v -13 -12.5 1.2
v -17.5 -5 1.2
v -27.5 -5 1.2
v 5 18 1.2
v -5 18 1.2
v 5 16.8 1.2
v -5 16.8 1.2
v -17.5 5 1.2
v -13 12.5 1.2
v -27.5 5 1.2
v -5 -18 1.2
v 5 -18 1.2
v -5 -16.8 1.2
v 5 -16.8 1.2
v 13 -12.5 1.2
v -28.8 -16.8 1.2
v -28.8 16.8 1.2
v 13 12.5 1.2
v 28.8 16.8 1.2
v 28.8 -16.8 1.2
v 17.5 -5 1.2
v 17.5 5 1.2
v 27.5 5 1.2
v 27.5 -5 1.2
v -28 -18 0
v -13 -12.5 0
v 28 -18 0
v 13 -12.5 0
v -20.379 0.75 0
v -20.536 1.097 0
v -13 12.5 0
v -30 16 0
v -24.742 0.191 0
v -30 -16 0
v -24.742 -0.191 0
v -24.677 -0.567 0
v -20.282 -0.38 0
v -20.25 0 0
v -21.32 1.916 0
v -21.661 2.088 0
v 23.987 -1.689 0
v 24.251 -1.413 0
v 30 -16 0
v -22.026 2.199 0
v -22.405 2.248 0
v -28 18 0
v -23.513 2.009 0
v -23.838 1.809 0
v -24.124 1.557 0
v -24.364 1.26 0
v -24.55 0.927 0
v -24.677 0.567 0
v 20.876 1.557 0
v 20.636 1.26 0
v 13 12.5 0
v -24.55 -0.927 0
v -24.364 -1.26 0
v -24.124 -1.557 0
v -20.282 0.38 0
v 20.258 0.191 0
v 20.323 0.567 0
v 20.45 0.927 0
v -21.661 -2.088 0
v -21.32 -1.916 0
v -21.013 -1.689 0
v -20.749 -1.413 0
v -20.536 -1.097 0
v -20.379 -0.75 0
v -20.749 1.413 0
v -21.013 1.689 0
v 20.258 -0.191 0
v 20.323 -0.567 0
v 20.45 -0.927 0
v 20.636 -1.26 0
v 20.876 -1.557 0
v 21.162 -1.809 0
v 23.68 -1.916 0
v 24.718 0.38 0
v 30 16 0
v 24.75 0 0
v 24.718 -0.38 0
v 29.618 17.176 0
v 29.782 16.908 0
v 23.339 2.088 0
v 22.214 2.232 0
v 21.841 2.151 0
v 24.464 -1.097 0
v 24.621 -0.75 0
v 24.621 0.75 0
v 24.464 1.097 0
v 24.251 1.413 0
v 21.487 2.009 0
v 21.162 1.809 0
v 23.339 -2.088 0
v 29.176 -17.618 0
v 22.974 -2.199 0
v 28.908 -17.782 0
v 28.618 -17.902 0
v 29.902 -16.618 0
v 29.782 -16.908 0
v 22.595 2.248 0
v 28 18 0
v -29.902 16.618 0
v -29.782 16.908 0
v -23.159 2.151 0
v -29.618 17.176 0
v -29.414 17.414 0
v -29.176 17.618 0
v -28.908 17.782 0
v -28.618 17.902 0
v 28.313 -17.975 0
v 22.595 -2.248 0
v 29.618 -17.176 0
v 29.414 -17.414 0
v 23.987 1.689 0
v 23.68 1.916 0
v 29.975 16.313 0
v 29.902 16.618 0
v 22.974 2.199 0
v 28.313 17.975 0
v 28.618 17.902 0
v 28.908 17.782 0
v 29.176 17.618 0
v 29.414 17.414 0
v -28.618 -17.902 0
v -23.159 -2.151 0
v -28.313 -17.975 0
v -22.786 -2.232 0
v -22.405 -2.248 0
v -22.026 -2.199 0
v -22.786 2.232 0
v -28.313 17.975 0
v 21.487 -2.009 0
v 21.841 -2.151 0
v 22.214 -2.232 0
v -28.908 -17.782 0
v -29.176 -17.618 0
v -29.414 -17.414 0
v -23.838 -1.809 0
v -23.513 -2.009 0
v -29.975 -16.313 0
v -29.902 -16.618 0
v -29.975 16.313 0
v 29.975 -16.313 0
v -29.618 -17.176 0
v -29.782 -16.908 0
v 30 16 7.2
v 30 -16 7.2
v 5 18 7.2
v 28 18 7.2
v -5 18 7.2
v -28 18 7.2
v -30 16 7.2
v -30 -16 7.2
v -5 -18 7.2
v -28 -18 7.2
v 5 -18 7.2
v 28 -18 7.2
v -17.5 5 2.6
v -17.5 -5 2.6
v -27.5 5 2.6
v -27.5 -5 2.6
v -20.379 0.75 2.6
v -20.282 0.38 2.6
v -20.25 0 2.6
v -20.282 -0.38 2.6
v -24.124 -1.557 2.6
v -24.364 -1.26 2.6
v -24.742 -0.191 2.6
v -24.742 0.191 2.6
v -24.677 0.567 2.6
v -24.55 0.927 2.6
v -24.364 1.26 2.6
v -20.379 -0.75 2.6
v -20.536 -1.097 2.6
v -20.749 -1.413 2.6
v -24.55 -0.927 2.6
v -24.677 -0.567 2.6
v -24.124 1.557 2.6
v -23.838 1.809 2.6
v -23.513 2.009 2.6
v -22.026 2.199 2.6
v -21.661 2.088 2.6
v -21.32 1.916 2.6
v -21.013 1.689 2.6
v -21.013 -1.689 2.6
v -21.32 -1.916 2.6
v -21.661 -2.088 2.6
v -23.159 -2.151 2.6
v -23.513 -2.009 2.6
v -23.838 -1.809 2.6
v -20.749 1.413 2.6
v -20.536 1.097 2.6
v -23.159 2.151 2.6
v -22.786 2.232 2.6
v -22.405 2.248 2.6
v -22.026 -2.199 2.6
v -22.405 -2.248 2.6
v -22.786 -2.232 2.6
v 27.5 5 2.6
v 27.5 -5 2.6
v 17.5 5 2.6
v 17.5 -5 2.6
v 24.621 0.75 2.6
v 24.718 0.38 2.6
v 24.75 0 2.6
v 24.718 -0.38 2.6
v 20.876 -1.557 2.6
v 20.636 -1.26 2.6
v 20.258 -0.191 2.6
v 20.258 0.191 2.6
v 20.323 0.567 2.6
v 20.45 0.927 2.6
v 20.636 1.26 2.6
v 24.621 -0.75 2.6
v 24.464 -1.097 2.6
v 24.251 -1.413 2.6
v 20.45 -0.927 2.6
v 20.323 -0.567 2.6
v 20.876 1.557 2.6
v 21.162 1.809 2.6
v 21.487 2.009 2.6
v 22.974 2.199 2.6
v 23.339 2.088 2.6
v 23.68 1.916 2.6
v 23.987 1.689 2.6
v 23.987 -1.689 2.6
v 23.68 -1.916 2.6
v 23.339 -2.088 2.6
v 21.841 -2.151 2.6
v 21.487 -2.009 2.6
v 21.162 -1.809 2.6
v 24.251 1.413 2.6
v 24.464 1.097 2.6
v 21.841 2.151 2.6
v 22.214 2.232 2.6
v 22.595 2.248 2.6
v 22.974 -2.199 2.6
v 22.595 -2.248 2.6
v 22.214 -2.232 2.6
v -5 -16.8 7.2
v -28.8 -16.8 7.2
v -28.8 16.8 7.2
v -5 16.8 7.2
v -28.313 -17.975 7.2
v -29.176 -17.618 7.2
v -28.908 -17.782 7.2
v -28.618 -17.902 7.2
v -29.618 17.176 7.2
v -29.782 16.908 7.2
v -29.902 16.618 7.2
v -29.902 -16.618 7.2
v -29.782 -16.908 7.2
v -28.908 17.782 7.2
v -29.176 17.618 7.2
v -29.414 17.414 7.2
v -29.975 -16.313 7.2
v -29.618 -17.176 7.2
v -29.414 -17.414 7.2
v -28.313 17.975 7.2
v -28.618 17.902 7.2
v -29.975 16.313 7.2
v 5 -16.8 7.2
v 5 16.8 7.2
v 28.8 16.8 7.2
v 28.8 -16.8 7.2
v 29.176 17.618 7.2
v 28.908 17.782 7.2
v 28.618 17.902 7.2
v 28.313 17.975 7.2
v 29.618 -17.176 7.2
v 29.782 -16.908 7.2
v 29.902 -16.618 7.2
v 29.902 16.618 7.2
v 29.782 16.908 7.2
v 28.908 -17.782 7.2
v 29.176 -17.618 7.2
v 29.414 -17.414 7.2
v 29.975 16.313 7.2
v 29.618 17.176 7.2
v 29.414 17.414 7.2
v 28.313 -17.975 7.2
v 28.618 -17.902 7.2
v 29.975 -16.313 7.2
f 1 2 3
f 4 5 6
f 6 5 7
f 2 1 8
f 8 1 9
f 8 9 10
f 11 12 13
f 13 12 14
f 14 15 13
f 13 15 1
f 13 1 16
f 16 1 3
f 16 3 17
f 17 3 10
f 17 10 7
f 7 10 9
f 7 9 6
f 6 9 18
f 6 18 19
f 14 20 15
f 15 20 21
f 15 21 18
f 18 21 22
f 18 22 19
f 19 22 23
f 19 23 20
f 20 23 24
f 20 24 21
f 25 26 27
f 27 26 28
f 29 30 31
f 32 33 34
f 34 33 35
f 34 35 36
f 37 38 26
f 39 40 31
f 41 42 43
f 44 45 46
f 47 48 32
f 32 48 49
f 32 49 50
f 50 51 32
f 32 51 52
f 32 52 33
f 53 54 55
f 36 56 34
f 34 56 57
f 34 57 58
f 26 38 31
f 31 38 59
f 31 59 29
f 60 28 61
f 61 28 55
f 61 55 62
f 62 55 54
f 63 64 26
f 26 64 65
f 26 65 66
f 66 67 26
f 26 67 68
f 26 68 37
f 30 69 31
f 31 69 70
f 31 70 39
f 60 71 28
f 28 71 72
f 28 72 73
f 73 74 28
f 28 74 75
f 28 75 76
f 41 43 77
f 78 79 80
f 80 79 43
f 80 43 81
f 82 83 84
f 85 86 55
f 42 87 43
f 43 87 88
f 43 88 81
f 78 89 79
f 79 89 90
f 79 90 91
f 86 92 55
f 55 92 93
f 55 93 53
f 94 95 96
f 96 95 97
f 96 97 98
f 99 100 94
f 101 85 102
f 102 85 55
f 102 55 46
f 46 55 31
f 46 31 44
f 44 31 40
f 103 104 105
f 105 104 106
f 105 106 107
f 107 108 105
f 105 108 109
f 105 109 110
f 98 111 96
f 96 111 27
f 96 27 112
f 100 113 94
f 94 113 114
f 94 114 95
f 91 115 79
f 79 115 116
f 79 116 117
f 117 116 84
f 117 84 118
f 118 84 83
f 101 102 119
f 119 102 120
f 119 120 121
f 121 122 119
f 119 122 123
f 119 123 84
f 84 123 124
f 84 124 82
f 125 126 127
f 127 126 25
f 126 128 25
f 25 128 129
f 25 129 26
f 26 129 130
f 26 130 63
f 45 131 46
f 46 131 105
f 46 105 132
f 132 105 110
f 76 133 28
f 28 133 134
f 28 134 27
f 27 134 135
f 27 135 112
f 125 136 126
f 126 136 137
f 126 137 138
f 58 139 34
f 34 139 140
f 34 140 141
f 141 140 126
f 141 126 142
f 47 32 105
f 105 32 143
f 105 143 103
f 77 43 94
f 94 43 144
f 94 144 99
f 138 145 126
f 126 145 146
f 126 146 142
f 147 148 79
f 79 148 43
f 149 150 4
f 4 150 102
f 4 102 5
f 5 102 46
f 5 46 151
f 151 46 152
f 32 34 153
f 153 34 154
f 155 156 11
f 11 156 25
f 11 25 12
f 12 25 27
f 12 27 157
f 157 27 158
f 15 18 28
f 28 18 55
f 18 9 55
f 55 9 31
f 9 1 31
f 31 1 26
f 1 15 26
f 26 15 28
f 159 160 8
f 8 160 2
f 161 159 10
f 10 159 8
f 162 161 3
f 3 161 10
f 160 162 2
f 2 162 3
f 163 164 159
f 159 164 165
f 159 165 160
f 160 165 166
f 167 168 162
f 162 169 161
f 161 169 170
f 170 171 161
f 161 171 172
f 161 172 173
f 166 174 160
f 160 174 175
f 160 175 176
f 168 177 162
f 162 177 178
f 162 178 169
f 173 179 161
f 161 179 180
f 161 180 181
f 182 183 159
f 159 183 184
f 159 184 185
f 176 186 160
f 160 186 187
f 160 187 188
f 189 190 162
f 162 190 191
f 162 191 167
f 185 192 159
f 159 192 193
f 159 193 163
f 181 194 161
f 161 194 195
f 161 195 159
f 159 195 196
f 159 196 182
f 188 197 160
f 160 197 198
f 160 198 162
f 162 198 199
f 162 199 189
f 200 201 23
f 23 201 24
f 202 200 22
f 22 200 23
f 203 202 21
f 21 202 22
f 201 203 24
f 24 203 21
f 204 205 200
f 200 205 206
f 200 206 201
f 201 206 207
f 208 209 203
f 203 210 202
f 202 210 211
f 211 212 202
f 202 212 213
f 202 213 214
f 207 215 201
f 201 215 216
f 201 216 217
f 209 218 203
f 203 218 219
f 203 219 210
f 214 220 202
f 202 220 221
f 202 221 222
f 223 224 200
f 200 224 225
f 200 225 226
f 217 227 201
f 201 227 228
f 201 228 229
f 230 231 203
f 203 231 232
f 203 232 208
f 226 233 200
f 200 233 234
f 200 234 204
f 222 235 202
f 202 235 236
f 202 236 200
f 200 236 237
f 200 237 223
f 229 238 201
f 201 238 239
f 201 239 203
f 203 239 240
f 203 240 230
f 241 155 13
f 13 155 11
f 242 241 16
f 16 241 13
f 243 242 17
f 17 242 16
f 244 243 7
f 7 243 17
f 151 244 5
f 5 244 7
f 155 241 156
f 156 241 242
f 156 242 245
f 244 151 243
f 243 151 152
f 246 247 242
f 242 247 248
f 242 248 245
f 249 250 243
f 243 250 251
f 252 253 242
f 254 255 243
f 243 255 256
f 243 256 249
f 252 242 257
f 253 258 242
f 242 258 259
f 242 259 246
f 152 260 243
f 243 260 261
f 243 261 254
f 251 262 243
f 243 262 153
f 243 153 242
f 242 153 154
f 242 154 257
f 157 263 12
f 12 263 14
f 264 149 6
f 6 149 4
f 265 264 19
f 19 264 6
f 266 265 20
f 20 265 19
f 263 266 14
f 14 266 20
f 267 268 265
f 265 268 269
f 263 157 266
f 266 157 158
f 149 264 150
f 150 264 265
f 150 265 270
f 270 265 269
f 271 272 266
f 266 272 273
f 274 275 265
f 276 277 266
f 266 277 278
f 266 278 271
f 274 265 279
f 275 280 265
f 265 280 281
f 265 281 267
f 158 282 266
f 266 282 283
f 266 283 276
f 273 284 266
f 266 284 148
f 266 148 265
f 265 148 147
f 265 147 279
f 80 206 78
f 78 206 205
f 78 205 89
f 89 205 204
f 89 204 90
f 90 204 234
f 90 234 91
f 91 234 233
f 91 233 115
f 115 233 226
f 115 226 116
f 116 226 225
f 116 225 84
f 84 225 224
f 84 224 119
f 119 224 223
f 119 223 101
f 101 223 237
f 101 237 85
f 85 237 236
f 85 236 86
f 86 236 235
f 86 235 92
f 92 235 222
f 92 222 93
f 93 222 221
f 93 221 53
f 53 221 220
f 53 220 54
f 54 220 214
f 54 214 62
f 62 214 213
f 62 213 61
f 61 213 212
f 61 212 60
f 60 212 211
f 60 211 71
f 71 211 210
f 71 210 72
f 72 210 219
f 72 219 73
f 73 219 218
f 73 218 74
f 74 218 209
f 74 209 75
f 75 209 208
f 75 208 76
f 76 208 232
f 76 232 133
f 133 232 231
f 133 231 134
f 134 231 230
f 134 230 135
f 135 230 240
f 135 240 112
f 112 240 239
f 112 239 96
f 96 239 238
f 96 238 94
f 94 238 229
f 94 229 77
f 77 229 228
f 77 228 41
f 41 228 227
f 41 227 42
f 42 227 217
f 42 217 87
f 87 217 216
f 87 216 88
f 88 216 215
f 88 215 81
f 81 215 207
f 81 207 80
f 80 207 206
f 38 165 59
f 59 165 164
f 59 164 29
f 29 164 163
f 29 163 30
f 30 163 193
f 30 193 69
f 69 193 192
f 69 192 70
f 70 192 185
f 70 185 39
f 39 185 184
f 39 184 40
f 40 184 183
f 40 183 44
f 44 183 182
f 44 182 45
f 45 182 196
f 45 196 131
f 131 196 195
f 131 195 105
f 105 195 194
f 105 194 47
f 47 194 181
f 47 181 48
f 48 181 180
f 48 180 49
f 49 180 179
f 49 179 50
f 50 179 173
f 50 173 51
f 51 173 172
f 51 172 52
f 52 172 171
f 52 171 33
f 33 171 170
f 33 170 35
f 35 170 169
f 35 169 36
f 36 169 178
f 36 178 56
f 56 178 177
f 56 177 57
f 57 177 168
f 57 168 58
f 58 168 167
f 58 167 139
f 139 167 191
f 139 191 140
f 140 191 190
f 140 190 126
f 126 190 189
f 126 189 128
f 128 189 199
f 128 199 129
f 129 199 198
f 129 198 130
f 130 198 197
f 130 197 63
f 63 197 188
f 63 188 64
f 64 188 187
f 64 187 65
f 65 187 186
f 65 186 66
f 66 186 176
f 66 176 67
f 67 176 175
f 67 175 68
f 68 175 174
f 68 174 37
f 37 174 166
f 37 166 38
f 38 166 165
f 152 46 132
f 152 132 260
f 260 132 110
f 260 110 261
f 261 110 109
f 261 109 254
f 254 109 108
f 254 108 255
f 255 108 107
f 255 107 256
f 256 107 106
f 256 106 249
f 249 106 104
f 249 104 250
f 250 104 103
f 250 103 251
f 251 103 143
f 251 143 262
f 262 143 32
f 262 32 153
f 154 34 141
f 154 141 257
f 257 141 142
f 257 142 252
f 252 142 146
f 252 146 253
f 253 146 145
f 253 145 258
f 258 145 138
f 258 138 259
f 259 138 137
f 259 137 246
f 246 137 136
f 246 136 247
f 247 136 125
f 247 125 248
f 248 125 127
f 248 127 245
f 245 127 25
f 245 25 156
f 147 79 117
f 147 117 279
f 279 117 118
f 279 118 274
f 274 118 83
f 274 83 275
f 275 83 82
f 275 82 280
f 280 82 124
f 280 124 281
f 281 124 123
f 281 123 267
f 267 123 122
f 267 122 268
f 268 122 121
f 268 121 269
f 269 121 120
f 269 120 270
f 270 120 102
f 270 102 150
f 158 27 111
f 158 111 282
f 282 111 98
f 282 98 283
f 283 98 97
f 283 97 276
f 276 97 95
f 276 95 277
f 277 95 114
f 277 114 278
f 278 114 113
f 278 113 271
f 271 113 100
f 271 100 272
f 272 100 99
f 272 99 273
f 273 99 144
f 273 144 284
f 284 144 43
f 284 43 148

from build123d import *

# Parameters (mm, degrees)
SKICA1_W                = 60
SKICA1_H                = 36
SKICA1_W_2              = 26
SKICA1_H_2              = 25
P_IDAT_VYSUNUT_M1_DEPTH = 1.2
SKICA2_W                = 10
SKICA2_H                = 10
P_IDAT_VYSUNUT_M2_DEPTH = 1.4
P_IDAT_VYSUNUT_M3_DEPTH = 6
M4_D_RA_S_V_L_1_D       = 4.5
ZAOBLIT1_R              = 2


with BuildPart() as part:
    # Skica1 → Přidat vysunutím1 (new body)
    with BuildSketch(Plane.XY):
        Rectangle(SKICA1_W, SKICA1_H)
        Rectangle(SKICA1_W_2, SKICA1_H_2, mode=Mode.SUBTRACT)
    extrude(amount=P_IDAT_VYSUNUT_M1_DEPTH)

    # Skica2 → Přidat vysunutím2 (add)
    with BuildSketch(Plane.XY.offset(1.2)):
        with Locations((22.5, 0)):
            Rectangle(SKICA2_W, SKICA2_H)
        with Locations((-22.5, 0)):
            Rectangle(SKICA2_W, SKICA2_H)
    extrude(amount=P_IDAT_VYSUNUT_M2_DEPTH)

    # Skica3 → Přidat vysunutím3 (add)
    with BuildSketch(Plane.XY.offset(1.2)):
        Polygon((-28.8, -16.8), (-28.8, 16.8), (-5, 16.8), (-5, 18), (-30, 18), (-30, -18), (-5, -18), (-5, -16.8), align=None)
        Polygon((28.8, -16.8), (5, -16.8), (5, -18), (30, -18), (30, 18), (5, 18), (5, 16.8), (28.8, 16.8), align=None)
    extrude(amount=P_IDAT_VYSUNUT_M3_DEPTH)

    # M4 díra s vůlí1 (through all)
    with Locations(Plane.XY.offset(2.6)):
        with Locations((-22.5, 0), (22.5, 0)):
            Hole(M4_D_RA_S_V_L_1_D / 2)

    # Zaoblit1
    zaoblit1_edges = [part.edges().sort_by_distance(p)[0] for p in [
        (30, -18, 3.6),
        (-30, -18, 3.6),
        (-30, 18, 3.6),
        (30, 18, 3.6),
    ]]
    fillet(zaoblit1_edges, radius=ZAOBLIT1_R)


solid = part.part
